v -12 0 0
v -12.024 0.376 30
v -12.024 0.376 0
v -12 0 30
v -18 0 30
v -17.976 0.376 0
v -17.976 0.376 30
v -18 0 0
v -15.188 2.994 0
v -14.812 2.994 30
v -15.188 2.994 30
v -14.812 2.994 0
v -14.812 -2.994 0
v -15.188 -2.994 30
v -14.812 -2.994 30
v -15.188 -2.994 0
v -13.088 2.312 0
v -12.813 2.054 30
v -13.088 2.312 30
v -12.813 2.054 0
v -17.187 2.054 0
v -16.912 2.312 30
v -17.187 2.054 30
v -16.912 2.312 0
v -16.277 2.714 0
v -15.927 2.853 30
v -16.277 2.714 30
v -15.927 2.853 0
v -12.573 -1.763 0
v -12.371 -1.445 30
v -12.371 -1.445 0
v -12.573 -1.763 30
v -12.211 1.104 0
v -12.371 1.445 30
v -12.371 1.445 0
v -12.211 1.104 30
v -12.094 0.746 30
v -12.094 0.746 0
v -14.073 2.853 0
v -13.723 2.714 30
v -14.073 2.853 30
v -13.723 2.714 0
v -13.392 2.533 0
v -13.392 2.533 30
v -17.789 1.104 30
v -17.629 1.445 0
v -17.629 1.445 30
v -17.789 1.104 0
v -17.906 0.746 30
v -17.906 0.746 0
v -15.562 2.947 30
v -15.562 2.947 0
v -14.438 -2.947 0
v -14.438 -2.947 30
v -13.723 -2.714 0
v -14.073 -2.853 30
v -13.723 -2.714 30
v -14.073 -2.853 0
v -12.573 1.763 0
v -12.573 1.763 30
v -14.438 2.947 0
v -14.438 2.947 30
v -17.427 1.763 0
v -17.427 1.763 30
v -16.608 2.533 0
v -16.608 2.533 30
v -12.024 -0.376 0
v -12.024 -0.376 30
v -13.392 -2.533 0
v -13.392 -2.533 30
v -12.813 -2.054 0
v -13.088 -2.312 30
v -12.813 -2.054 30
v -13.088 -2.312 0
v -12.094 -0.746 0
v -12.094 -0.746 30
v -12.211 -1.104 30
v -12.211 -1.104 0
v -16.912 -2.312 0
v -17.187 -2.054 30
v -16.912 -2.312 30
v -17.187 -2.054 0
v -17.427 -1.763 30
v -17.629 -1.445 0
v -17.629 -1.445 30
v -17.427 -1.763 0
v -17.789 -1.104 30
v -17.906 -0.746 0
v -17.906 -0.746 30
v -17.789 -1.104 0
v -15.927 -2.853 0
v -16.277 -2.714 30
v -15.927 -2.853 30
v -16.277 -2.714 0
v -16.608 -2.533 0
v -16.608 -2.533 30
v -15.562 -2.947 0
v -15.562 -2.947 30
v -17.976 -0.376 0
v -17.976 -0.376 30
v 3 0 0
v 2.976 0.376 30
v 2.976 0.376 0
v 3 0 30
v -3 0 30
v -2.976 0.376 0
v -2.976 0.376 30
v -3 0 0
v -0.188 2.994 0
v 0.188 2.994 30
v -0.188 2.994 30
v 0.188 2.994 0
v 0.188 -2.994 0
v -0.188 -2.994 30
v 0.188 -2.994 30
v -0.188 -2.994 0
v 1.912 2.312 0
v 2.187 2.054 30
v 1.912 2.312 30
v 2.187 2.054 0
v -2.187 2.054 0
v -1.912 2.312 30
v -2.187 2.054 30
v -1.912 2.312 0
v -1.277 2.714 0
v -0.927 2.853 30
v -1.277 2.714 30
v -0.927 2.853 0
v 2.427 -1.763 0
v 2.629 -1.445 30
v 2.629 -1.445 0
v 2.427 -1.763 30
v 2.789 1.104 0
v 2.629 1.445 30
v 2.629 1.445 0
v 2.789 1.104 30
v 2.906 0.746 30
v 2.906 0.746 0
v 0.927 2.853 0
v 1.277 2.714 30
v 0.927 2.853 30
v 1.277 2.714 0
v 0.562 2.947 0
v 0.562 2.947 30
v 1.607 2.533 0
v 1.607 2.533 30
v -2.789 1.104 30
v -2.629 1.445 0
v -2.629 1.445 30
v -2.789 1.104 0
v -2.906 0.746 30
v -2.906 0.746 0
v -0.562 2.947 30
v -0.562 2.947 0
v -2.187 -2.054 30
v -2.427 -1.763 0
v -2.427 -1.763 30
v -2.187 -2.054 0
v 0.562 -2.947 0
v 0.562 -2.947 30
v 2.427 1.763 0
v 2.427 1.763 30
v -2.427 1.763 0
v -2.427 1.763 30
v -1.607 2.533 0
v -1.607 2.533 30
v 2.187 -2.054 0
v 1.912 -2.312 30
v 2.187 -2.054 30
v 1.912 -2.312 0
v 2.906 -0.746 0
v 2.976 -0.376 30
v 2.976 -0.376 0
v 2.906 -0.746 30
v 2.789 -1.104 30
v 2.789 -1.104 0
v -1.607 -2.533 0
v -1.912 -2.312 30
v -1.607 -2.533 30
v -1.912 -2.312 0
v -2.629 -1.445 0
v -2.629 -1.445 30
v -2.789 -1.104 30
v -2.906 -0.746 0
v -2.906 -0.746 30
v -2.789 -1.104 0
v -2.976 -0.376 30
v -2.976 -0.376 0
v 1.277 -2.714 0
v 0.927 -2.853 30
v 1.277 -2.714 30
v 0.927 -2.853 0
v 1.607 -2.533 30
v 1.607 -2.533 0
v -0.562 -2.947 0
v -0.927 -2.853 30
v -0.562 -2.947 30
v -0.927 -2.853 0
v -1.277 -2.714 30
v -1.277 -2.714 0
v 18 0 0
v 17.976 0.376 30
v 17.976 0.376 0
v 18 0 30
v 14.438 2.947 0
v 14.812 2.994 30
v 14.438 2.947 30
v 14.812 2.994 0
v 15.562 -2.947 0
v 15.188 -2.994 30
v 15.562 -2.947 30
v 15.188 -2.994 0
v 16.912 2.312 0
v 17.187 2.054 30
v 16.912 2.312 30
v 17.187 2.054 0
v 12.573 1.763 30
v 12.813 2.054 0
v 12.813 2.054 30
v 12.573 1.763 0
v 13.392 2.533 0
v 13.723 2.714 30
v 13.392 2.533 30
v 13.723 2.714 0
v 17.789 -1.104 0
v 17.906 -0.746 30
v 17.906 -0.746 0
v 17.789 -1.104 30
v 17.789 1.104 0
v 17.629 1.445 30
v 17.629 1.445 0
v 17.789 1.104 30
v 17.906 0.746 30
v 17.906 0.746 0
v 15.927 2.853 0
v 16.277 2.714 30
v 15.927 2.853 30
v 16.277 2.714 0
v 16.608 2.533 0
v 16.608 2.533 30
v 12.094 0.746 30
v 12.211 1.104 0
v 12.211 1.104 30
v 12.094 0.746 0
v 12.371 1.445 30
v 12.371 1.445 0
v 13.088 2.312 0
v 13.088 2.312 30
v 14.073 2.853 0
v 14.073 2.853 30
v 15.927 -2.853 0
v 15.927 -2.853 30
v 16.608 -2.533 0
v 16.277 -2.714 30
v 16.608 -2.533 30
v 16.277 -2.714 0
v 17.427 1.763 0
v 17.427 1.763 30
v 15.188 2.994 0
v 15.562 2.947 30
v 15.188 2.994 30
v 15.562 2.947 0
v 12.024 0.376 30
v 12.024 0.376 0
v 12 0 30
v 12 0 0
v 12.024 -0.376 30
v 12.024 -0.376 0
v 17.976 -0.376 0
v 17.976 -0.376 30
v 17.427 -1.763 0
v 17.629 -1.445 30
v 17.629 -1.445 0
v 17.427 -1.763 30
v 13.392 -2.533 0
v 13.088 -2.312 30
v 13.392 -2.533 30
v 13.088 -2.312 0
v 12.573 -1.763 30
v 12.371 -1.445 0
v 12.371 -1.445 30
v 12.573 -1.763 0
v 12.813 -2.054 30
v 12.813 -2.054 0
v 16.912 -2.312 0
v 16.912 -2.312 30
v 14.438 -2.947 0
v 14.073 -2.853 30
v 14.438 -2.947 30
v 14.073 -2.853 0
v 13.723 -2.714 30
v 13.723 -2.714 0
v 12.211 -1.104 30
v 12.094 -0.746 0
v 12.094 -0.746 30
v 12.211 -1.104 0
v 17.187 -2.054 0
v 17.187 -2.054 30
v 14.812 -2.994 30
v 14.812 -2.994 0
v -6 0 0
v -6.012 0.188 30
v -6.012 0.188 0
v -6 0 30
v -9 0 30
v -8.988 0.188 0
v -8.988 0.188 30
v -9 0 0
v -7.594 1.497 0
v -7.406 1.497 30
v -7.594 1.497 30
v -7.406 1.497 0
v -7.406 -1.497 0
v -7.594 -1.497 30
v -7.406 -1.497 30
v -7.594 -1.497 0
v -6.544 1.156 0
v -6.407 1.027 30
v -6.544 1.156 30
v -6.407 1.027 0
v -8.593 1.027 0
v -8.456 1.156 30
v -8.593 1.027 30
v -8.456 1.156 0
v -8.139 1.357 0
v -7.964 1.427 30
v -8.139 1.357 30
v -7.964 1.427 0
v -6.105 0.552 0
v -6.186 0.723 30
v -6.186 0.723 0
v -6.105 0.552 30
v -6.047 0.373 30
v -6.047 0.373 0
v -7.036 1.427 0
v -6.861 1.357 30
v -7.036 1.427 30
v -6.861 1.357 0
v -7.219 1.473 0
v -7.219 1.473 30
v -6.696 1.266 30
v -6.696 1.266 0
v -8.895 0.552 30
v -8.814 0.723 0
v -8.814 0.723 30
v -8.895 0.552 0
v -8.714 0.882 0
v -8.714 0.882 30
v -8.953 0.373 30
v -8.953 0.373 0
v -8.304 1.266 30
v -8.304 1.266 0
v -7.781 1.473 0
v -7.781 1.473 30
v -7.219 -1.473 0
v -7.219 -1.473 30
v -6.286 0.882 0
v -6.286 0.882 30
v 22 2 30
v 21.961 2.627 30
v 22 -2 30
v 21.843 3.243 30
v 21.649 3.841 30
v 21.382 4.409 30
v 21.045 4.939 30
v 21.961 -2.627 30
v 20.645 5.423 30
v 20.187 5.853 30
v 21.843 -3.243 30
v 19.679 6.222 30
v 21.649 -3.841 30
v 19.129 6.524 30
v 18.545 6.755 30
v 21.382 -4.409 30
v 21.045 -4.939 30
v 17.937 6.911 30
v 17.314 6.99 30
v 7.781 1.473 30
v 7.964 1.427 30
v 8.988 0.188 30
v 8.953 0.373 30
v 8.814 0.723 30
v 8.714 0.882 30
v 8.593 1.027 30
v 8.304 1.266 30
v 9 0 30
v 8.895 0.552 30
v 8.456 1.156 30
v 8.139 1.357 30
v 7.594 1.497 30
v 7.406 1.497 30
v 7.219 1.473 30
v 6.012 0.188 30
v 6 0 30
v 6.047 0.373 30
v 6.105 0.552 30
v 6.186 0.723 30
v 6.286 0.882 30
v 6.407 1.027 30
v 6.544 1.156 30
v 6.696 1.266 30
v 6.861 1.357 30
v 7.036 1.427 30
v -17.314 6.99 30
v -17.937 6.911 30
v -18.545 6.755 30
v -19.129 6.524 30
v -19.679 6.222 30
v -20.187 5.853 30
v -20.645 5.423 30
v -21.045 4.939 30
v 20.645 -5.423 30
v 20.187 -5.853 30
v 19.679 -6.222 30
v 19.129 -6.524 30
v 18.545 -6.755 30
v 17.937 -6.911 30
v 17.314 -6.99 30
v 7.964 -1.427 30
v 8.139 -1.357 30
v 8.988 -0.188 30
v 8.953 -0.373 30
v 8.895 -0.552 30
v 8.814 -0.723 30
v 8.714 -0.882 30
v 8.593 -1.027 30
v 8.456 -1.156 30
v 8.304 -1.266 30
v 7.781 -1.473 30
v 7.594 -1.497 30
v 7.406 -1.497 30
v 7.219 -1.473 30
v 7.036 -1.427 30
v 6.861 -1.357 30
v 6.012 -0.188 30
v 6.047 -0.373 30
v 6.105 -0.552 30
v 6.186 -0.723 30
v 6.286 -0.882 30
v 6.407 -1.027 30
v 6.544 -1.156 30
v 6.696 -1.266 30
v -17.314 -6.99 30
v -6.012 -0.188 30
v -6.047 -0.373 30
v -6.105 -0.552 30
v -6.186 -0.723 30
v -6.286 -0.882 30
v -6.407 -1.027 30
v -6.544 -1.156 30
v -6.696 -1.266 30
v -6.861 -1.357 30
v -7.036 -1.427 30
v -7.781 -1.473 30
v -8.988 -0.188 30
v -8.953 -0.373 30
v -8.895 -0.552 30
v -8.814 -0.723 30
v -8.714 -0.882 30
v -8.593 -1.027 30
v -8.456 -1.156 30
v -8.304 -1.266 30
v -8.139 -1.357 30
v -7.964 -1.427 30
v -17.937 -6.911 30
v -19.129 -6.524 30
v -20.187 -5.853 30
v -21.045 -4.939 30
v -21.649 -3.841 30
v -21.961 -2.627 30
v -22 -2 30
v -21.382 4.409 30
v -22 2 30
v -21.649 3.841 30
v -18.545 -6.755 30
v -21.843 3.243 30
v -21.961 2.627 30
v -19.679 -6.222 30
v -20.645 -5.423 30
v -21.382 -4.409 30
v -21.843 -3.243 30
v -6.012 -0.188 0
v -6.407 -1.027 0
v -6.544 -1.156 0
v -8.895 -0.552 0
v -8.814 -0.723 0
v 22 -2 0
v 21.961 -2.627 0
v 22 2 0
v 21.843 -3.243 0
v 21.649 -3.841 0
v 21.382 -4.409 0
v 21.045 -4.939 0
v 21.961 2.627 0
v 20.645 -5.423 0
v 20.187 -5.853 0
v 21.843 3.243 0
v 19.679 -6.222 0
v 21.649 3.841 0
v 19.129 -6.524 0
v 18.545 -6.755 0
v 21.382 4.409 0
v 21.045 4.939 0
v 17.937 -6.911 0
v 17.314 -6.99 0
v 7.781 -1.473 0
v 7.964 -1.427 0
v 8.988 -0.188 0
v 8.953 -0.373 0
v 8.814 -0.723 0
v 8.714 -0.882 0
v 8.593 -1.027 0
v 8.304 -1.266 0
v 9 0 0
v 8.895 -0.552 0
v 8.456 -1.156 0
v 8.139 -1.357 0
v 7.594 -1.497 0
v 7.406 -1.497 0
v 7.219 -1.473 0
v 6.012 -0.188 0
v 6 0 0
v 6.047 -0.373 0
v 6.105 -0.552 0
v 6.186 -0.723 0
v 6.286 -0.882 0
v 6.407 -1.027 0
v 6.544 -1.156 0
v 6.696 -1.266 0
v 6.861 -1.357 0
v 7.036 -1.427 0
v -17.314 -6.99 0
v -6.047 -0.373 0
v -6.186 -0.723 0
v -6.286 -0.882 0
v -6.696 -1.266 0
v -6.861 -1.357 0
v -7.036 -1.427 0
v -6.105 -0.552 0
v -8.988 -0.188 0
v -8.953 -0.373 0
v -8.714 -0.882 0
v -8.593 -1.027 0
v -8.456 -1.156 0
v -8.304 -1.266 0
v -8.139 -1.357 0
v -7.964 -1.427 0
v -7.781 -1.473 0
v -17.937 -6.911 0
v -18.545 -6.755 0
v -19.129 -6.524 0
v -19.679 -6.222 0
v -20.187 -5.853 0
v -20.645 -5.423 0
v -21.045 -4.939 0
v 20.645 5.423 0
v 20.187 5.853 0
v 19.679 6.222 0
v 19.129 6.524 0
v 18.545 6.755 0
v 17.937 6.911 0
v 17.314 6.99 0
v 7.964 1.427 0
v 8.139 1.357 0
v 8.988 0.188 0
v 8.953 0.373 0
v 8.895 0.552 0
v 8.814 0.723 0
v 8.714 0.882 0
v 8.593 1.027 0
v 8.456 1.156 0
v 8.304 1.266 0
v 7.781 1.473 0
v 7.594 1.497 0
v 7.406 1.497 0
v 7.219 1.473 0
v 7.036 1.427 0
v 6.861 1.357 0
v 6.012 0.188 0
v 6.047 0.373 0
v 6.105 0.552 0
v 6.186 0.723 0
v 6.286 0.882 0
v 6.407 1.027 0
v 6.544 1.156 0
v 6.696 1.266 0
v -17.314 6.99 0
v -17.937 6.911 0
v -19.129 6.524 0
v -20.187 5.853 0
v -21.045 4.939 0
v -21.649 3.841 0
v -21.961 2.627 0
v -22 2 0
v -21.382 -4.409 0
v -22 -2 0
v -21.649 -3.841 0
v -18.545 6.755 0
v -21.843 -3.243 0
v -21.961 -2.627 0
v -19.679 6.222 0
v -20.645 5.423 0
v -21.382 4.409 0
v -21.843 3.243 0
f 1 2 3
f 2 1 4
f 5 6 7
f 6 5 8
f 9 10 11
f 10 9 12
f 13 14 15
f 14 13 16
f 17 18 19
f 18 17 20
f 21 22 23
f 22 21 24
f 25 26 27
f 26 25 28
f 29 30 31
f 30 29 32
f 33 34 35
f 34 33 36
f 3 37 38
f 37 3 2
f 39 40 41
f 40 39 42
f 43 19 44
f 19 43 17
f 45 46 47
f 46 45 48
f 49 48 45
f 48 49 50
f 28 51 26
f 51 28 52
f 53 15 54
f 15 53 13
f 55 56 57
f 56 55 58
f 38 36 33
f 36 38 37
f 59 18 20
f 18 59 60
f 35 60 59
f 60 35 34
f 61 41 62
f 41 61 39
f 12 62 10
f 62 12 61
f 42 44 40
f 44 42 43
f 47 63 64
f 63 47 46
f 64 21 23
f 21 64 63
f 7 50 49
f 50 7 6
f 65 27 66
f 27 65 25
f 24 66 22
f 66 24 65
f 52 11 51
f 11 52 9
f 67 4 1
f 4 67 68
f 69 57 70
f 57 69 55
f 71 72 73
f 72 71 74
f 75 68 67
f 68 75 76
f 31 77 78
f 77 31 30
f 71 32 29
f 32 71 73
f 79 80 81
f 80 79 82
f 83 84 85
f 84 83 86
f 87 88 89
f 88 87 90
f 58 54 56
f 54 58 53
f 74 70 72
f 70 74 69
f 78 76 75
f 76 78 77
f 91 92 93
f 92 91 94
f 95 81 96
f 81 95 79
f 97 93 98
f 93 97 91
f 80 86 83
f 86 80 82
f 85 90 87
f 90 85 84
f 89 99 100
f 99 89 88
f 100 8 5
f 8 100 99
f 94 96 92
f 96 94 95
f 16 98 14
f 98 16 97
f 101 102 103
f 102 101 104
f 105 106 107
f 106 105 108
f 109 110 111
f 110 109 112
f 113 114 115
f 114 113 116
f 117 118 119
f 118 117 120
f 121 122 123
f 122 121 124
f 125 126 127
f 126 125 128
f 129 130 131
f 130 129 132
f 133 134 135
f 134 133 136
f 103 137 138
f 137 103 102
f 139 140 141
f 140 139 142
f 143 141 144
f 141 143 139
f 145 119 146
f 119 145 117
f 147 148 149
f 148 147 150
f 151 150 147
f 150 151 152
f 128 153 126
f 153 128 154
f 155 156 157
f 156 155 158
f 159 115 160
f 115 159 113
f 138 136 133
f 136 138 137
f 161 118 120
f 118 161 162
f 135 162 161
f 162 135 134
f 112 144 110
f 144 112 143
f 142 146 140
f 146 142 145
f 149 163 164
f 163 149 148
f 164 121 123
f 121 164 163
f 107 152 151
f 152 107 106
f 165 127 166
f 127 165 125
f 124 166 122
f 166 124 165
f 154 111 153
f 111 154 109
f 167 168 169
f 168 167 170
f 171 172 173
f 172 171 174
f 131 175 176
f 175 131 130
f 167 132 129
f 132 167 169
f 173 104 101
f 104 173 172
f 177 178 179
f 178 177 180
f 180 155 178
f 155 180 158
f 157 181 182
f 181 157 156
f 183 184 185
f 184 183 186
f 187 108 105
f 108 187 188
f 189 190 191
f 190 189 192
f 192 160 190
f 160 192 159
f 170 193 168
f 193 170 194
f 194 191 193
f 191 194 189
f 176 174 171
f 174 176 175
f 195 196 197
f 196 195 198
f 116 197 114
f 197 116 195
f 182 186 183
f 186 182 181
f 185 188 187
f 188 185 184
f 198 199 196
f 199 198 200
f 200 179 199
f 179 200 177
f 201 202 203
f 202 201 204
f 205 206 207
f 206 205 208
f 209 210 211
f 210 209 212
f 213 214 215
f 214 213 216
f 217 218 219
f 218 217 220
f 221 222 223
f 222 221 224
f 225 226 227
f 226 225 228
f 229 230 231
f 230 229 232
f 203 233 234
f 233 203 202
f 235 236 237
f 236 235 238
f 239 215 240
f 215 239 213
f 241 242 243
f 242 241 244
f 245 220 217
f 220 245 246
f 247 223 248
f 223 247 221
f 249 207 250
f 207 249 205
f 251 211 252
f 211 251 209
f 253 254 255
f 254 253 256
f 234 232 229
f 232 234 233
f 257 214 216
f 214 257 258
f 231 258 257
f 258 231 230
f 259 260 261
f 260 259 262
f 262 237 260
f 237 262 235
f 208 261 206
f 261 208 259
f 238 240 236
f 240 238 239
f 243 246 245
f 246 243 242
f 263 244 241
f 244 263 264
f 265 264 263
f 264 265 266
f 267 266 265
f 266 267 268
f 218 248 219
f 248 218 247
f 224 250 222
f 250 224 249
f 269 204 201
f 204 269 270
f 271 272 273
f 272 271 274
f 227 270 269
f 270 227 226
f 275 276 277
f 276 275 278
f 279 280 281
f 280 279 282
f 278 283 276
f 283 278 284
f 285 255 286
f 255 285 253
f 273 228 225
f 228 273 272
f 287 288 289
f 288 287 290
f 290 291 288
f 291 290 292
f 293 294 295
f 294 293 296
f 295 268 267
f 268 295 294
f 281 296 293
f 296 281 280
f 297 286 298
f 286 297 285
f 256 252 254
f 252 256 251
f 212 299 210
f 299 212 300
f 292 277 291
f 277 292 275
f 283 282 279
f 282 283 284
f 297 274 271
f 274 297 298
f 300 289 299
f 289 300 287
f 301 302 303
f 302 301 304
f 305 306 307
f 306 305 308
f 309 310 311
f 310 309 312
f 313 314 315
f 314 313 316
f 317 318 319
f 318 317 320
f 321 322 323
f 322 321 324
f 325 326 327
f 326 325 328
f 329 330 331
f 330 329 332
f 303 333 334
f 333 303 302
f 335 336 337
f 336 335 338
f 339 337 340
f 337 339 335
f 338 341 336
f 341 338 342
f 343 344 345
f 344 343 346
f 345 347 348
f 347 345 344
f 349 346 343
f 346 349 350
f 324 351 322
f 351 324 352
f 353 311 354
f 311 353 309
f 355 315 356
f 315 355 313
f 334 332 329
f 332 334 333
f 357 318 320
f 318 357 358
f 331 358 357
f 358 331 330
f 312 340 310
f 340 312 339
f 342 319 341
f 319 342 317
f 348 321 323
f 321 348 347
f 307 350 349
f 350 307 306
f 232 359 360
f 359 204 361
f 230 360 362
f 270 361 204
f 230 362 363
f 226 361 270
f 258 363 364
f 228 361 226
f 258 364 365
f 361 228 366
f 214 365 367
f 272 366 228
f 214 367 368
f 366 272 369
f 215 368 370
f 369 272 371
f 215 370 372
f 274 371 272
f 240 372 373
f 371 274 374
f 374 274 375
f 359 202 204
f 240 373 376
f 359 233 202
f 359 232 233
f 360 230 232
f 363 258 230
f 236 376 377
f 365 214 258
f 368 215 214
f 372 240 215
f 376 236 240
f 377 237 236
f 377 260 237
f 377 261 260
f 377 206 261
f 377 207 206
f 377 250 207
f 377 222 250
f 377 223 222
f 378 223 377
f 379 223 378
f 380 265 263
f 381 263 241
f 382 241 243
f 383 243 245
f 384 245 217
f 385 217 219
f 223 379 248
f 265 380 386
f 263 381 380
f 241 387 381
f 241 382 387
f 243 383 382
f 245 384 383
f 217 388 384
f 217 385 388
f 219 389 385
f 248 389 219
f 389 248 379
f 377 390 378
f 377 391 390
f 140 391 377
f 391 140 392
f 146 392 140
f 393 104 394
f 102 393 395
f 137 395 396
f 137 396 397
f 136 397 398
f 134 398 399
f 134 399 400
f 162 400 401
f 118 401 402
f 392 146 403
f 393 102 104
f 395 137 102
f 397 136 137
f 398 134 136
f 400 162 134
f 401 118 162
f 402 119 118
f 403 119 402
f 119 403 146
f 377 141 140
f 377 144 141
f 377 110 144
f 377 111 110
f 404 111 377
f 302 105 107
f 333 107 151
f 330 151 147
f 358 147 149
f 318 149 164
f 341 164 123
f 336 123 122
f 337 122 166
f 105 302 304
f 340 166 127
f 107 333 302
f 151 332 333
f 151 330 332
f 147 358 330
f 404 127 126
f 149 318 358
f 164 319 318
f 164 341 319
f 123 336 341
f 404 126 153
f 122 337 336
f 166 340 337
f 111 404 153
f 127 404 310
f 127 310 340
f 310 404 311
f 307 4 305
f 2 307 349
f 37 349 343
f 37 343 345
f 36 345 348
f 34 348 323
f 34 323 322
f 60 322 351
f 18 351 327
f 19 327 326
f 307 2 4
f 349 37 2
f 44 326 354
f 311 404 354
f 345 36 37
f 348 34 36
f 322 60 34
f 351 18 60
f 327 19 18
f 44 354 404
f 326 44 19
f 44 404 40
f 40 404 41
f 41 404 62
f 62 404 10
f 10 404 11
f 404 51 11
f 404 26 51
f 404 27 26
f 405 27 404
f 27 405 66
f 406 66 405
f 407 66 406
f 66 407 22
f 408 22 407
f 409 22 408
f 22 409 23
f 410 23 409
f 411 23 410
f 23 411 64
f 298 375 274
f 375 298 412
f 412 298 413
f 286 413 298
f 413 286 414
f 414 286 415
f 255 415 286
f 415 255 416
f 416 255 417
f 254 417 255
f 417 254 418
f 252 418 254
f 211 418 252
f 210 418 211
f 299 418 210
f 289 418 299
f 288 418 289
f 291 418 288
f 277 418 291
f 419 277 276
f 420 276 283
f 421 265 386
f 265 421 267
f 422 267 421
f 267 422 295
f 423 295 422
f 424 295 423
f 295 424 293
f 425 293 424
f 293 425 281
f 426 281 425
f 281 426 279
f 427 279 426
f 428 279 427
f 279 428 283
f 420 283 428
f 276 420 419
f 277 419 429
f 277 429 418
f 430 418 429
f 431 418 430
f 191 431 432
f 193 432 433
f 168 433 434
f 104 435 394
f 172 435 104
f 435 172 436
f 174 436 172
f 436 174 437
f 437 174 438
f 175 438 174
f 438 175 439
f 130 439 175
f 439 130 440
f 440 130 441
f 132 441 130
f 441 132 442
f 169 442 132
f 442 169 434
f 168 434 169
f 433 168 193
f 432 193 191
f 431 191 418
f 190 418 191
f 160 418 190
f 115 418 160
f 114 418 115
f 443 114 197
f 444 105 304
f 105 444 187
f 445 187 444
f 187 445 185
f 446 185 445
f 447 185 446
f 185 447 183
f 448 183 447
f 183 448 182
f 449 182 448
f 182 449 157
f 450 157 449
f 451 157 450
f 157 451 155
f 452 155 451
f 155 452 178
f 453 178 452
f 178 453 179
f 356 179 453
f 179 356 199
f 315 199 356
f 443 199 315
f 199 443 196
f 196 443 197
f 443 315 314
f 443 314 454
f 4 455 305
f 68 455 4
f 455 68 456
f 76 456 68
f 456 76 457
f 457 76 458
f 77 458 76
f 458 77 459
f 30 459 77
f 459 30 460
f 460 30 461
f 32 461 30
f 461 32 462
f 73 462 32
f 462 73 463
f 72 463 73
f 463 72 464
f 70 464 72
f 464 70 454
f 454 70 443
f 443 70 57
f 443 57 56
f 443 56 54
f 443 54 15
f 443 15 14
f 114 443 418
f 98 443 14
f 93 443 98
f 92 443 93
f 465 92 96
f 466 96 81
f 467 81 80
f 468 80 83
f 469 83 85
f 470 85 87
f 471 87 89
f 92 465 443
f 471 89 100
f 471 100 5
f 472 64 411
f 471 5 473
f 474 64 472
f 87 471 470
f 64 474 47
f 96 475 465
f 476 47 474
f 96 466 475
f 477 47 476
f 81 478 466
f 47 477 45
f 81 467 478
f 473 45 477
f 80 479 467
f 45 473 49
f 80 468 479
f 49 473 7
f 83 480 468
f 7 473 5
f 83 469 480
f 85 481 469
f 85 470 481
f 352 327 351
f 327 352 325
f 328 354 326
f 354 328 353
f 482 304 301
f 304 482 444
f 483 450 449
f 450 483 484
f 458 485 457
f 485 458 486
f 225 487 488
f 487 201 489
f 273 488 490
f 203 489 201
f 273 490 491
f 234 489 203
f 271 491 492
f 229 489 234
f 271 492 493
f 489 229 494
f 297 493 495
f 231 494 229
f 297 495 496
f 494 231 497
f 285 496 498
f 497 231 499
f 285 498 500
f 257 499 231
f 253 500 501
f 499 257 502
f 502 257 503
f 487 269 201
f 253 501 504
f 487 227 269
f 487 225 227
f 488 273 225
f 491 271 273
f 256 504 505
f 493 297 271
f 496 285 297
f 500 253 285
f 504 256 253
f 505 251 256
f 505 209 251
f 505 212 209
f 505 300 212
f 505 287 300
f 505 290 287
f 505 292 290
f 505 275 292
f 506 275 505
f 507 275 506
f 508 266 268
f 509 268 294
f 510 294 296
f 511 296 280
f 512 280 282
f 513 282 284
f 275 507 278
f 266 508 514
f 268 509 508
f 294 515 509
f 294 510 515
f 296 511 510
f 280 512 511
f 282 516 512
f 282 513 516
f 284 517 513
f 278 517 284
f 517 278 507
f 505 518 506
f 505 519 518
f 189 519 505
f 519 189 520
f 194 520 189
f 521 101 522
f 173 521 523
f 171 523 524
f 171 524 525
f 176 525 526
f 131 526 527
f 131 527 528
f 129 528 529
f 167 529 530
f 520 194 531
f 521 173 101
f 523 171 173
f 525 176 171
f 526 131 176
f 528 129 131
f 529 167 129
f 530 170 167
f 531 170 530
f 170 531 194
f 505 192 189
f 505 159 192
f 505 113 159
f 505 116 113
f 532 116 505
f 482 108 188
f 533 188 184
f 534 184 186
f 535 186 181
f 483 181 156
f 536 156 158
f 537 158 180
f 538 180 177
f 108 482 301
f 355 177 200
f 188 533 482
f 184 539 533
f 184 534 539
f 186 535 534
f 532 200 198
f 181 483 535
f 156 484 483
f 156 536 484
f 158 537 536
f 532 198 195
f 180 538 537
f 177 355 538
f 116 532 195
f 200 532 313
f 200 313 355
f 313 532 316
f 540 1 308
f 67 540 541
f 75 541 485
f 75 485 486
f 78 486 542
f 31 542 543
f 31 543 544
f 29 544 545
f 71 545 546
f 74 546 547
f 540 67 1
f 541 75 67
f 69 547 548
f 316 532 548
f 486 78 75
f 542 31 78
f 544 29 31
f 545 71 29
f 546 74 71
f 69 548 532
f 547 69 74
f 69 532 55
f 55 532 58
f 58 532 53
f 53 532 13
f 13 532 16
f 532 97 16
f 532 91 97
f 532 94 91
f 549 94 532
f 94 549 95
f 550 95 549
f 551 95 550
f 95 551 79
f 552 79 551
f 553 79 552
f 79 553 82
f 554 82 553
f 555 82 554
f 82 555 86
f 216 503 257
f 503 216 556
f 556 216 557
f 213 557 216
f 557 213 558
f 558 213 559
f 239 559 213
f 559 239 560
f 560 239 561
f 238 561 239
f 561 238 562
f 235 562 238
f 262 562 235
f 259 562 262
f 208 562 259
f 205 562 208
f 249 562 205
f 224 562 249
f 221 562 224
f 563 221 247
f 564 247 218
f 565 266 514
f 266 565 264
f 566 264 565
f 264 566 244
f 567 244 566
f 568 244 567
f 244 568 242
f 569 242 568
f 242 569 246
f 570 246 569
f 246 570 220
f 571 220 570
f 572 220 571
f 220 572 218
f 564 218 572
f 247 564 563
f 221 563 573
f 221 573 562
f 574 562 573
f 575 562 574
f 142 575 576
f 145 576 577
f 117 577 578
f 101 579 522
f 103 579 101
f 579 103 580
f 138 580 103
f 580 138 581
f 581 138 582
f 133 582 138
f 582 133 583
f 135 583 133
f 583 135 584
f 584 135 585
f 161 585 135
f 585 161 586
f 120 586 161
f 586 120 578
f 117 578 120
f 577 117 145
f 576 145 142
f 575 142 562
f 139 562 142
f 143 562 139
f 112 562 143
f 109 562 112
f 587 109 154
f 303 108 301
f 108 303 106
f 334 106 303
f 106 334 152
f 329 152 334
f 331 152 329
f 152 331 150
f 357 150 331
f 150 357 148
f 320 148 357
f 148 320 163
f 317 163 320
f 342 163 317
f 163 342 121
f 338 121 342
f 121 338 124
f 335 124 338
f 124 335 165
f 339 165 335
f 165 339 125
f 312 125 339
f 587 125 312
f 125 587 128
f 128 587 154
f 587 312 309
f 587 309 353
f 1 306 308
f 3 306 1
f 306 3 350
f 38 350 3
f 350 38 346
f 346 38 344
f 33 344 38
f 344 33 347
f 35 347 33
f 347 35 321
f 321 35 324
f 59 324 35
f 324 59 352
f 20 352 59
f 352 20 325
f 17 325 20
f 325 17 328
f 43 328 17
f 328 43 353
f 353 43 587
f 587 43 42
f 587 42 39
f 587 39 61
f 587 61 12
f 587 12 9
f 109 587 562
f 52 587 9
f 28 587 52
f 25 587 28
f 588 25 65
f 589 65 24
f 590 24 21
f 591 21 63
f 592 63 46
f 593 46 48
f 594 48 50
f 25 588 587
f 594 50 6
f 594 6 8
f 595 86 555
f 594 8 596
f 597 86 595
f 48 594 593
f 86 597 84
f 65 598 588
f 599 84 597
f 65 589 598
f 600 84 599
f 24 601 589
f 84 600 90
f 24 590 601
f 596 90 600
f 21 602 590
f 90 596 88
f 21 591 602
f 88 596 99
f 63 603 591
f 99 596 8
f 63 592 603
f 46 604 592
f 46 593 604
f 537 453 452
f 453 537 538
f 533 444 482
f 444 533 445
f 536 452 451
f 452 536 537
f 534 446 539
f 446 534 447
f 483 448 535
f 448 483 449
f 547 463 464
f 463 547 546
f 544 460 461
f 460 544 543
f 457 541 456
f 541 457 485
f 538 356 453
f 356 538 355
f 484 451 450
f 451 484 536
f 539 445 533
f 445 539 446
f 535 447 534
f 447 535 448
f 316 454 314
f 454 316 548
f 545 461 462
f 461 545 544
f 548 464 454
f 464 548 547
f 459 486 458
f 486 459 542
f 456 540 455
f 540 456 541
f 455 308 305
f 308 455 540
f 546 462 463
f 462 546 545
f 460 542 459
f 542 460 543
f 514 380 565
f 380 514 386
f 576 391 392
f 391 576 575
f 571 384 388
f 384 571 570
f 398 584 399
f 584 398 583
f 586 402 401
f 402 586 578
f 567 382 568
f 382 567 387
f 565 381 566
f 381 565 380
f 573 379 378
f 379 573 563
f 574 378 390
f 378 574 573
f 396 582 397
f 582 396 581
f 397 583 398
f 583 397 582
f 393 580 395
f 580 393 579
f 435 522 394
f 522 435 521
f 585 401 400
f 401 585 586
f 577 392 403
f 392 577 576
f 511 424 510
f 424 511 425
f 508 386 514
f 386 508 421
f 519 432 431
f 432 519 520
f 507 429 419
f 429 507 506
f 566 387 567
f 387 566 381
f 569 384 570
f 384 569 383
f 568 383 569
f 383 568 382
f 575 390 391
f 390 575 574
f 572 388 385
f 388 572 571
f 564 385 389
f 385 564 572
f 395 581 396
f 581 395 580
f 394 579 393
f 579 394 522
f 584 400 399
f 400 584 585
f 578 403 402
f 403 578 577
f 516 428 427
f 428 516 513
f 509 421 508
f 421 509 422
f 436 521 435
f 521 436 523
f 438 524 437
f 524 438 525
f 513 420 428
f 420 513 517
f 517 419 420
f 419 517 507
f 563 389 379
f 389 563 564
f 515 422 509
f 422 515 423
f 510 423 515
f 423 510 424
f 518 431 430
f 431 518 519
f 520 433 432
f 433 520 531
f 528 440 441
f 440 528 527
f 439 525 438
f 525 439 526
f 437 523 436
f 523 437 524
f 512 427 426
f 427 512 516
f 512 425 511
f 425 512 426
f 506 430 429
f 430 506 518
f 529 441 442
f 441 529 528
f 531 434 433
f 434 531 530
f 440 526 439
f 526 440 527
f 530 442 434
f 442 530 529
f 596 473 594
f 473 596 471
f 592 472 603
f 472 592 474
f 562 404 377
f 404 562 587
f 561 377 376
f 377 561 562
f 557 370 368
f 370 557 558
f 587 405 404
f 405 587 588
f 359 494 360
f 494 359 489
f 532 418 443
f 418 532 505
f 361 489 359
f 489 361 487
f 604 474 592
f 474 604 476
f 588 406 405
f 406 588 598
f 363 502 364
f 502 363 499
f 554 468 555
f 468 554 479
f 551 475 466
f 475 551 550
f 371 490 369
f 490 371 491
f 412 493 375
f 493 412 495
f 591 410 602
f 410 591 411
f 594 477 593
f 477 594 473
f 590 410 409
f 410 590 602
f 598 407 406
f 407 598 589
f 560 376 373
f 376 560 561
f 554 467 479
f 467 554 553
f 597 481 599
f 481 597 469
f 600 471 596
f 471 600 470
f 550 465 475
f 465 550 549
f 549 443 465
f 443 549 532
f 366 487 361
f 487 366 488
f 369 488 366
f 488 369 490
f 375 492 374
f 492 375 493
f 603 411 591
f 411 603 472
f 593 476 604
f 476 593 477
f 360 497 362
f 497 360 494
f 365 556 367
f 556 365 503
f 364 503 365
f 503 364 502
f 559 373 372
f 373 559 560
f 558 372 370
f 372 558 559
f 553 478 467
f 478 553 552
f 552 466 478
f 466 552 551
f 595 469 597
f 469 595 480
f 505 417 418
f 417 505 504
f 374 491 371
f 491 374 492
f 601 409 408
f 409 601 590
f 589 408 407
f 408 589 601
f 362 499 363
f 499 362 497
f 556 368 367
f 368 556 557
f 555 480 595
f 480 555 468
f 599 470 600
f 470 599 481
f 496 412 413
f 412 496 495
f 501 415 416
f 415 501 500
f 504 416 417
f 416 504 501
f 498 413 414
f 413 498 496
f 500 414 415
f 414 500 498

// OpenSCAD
$fn = 50;


difference() {
	union() {
		hull() {
			translate(v = [-17.0000000000, 2.0000000000, 0]) {
				cylinder(h = 30, r = 5);
			}
			translate(v = [17.0000000000, 2.0000000000, 0]) {
				cylinder(h = 30, r = 5);
			}
			translate(v = [-17.0000000000, -2.0000000000, 0]) {
				cylinder(h = 30, r = 5);
			}
			translate(v = [17.0000000000, -2.0000000000, 0]) {
				cylinder(h = 30, r = 5);
			}
		}
	}
	union() {
		translate(v = [-15.0000000000, 0.0000000000, 0]) {
			translate(v = [0, 0, -100]) {
				cylinder(h = 200, r = 3.0000000000);
			}
		}
		translate(v = [0, 0, -100]) {
			cylinder(h = 200, r = 3.0000000000);
		}
		translate(v = [15.0000000000, 0.0000000000, 0]) {
			translate(v = [0, 0, -100]) {
				cylinder(h = 200, r = 3.0000000000);
			}
		}
		translate(v = [-15.0000000000, 0.0000000000, 0]) {
			translate(v = [0, 0, -100]) {
				cylinder(h = 200, r = 1.5000000000);
			}
		}
		translate(v = [-7.5000000000, 0.0000000000, 0]) {
			translate(v = [0, 0, -100]) {
				cylinder(h = 200, r = 1.5000000000);
			}
		}
		translate(v = [0, 0, -100]) {
			cylinder(h = 200, r = 1.5000000000);
		}
		translate(v = [7.5000000000, 0.0000000000, 0]) {
			translate(v = [0, 0, -100]) {
				cylinder(h = 200, r = 1.5000000000);
			}
		}
		translate(v = [15.0000000000, 0.0000000000, 0]) {
			translate(v = [0, 0, -100]) {
				cylinder(h = 200, r = 1.5000000000);
			}
		}
	}
}
